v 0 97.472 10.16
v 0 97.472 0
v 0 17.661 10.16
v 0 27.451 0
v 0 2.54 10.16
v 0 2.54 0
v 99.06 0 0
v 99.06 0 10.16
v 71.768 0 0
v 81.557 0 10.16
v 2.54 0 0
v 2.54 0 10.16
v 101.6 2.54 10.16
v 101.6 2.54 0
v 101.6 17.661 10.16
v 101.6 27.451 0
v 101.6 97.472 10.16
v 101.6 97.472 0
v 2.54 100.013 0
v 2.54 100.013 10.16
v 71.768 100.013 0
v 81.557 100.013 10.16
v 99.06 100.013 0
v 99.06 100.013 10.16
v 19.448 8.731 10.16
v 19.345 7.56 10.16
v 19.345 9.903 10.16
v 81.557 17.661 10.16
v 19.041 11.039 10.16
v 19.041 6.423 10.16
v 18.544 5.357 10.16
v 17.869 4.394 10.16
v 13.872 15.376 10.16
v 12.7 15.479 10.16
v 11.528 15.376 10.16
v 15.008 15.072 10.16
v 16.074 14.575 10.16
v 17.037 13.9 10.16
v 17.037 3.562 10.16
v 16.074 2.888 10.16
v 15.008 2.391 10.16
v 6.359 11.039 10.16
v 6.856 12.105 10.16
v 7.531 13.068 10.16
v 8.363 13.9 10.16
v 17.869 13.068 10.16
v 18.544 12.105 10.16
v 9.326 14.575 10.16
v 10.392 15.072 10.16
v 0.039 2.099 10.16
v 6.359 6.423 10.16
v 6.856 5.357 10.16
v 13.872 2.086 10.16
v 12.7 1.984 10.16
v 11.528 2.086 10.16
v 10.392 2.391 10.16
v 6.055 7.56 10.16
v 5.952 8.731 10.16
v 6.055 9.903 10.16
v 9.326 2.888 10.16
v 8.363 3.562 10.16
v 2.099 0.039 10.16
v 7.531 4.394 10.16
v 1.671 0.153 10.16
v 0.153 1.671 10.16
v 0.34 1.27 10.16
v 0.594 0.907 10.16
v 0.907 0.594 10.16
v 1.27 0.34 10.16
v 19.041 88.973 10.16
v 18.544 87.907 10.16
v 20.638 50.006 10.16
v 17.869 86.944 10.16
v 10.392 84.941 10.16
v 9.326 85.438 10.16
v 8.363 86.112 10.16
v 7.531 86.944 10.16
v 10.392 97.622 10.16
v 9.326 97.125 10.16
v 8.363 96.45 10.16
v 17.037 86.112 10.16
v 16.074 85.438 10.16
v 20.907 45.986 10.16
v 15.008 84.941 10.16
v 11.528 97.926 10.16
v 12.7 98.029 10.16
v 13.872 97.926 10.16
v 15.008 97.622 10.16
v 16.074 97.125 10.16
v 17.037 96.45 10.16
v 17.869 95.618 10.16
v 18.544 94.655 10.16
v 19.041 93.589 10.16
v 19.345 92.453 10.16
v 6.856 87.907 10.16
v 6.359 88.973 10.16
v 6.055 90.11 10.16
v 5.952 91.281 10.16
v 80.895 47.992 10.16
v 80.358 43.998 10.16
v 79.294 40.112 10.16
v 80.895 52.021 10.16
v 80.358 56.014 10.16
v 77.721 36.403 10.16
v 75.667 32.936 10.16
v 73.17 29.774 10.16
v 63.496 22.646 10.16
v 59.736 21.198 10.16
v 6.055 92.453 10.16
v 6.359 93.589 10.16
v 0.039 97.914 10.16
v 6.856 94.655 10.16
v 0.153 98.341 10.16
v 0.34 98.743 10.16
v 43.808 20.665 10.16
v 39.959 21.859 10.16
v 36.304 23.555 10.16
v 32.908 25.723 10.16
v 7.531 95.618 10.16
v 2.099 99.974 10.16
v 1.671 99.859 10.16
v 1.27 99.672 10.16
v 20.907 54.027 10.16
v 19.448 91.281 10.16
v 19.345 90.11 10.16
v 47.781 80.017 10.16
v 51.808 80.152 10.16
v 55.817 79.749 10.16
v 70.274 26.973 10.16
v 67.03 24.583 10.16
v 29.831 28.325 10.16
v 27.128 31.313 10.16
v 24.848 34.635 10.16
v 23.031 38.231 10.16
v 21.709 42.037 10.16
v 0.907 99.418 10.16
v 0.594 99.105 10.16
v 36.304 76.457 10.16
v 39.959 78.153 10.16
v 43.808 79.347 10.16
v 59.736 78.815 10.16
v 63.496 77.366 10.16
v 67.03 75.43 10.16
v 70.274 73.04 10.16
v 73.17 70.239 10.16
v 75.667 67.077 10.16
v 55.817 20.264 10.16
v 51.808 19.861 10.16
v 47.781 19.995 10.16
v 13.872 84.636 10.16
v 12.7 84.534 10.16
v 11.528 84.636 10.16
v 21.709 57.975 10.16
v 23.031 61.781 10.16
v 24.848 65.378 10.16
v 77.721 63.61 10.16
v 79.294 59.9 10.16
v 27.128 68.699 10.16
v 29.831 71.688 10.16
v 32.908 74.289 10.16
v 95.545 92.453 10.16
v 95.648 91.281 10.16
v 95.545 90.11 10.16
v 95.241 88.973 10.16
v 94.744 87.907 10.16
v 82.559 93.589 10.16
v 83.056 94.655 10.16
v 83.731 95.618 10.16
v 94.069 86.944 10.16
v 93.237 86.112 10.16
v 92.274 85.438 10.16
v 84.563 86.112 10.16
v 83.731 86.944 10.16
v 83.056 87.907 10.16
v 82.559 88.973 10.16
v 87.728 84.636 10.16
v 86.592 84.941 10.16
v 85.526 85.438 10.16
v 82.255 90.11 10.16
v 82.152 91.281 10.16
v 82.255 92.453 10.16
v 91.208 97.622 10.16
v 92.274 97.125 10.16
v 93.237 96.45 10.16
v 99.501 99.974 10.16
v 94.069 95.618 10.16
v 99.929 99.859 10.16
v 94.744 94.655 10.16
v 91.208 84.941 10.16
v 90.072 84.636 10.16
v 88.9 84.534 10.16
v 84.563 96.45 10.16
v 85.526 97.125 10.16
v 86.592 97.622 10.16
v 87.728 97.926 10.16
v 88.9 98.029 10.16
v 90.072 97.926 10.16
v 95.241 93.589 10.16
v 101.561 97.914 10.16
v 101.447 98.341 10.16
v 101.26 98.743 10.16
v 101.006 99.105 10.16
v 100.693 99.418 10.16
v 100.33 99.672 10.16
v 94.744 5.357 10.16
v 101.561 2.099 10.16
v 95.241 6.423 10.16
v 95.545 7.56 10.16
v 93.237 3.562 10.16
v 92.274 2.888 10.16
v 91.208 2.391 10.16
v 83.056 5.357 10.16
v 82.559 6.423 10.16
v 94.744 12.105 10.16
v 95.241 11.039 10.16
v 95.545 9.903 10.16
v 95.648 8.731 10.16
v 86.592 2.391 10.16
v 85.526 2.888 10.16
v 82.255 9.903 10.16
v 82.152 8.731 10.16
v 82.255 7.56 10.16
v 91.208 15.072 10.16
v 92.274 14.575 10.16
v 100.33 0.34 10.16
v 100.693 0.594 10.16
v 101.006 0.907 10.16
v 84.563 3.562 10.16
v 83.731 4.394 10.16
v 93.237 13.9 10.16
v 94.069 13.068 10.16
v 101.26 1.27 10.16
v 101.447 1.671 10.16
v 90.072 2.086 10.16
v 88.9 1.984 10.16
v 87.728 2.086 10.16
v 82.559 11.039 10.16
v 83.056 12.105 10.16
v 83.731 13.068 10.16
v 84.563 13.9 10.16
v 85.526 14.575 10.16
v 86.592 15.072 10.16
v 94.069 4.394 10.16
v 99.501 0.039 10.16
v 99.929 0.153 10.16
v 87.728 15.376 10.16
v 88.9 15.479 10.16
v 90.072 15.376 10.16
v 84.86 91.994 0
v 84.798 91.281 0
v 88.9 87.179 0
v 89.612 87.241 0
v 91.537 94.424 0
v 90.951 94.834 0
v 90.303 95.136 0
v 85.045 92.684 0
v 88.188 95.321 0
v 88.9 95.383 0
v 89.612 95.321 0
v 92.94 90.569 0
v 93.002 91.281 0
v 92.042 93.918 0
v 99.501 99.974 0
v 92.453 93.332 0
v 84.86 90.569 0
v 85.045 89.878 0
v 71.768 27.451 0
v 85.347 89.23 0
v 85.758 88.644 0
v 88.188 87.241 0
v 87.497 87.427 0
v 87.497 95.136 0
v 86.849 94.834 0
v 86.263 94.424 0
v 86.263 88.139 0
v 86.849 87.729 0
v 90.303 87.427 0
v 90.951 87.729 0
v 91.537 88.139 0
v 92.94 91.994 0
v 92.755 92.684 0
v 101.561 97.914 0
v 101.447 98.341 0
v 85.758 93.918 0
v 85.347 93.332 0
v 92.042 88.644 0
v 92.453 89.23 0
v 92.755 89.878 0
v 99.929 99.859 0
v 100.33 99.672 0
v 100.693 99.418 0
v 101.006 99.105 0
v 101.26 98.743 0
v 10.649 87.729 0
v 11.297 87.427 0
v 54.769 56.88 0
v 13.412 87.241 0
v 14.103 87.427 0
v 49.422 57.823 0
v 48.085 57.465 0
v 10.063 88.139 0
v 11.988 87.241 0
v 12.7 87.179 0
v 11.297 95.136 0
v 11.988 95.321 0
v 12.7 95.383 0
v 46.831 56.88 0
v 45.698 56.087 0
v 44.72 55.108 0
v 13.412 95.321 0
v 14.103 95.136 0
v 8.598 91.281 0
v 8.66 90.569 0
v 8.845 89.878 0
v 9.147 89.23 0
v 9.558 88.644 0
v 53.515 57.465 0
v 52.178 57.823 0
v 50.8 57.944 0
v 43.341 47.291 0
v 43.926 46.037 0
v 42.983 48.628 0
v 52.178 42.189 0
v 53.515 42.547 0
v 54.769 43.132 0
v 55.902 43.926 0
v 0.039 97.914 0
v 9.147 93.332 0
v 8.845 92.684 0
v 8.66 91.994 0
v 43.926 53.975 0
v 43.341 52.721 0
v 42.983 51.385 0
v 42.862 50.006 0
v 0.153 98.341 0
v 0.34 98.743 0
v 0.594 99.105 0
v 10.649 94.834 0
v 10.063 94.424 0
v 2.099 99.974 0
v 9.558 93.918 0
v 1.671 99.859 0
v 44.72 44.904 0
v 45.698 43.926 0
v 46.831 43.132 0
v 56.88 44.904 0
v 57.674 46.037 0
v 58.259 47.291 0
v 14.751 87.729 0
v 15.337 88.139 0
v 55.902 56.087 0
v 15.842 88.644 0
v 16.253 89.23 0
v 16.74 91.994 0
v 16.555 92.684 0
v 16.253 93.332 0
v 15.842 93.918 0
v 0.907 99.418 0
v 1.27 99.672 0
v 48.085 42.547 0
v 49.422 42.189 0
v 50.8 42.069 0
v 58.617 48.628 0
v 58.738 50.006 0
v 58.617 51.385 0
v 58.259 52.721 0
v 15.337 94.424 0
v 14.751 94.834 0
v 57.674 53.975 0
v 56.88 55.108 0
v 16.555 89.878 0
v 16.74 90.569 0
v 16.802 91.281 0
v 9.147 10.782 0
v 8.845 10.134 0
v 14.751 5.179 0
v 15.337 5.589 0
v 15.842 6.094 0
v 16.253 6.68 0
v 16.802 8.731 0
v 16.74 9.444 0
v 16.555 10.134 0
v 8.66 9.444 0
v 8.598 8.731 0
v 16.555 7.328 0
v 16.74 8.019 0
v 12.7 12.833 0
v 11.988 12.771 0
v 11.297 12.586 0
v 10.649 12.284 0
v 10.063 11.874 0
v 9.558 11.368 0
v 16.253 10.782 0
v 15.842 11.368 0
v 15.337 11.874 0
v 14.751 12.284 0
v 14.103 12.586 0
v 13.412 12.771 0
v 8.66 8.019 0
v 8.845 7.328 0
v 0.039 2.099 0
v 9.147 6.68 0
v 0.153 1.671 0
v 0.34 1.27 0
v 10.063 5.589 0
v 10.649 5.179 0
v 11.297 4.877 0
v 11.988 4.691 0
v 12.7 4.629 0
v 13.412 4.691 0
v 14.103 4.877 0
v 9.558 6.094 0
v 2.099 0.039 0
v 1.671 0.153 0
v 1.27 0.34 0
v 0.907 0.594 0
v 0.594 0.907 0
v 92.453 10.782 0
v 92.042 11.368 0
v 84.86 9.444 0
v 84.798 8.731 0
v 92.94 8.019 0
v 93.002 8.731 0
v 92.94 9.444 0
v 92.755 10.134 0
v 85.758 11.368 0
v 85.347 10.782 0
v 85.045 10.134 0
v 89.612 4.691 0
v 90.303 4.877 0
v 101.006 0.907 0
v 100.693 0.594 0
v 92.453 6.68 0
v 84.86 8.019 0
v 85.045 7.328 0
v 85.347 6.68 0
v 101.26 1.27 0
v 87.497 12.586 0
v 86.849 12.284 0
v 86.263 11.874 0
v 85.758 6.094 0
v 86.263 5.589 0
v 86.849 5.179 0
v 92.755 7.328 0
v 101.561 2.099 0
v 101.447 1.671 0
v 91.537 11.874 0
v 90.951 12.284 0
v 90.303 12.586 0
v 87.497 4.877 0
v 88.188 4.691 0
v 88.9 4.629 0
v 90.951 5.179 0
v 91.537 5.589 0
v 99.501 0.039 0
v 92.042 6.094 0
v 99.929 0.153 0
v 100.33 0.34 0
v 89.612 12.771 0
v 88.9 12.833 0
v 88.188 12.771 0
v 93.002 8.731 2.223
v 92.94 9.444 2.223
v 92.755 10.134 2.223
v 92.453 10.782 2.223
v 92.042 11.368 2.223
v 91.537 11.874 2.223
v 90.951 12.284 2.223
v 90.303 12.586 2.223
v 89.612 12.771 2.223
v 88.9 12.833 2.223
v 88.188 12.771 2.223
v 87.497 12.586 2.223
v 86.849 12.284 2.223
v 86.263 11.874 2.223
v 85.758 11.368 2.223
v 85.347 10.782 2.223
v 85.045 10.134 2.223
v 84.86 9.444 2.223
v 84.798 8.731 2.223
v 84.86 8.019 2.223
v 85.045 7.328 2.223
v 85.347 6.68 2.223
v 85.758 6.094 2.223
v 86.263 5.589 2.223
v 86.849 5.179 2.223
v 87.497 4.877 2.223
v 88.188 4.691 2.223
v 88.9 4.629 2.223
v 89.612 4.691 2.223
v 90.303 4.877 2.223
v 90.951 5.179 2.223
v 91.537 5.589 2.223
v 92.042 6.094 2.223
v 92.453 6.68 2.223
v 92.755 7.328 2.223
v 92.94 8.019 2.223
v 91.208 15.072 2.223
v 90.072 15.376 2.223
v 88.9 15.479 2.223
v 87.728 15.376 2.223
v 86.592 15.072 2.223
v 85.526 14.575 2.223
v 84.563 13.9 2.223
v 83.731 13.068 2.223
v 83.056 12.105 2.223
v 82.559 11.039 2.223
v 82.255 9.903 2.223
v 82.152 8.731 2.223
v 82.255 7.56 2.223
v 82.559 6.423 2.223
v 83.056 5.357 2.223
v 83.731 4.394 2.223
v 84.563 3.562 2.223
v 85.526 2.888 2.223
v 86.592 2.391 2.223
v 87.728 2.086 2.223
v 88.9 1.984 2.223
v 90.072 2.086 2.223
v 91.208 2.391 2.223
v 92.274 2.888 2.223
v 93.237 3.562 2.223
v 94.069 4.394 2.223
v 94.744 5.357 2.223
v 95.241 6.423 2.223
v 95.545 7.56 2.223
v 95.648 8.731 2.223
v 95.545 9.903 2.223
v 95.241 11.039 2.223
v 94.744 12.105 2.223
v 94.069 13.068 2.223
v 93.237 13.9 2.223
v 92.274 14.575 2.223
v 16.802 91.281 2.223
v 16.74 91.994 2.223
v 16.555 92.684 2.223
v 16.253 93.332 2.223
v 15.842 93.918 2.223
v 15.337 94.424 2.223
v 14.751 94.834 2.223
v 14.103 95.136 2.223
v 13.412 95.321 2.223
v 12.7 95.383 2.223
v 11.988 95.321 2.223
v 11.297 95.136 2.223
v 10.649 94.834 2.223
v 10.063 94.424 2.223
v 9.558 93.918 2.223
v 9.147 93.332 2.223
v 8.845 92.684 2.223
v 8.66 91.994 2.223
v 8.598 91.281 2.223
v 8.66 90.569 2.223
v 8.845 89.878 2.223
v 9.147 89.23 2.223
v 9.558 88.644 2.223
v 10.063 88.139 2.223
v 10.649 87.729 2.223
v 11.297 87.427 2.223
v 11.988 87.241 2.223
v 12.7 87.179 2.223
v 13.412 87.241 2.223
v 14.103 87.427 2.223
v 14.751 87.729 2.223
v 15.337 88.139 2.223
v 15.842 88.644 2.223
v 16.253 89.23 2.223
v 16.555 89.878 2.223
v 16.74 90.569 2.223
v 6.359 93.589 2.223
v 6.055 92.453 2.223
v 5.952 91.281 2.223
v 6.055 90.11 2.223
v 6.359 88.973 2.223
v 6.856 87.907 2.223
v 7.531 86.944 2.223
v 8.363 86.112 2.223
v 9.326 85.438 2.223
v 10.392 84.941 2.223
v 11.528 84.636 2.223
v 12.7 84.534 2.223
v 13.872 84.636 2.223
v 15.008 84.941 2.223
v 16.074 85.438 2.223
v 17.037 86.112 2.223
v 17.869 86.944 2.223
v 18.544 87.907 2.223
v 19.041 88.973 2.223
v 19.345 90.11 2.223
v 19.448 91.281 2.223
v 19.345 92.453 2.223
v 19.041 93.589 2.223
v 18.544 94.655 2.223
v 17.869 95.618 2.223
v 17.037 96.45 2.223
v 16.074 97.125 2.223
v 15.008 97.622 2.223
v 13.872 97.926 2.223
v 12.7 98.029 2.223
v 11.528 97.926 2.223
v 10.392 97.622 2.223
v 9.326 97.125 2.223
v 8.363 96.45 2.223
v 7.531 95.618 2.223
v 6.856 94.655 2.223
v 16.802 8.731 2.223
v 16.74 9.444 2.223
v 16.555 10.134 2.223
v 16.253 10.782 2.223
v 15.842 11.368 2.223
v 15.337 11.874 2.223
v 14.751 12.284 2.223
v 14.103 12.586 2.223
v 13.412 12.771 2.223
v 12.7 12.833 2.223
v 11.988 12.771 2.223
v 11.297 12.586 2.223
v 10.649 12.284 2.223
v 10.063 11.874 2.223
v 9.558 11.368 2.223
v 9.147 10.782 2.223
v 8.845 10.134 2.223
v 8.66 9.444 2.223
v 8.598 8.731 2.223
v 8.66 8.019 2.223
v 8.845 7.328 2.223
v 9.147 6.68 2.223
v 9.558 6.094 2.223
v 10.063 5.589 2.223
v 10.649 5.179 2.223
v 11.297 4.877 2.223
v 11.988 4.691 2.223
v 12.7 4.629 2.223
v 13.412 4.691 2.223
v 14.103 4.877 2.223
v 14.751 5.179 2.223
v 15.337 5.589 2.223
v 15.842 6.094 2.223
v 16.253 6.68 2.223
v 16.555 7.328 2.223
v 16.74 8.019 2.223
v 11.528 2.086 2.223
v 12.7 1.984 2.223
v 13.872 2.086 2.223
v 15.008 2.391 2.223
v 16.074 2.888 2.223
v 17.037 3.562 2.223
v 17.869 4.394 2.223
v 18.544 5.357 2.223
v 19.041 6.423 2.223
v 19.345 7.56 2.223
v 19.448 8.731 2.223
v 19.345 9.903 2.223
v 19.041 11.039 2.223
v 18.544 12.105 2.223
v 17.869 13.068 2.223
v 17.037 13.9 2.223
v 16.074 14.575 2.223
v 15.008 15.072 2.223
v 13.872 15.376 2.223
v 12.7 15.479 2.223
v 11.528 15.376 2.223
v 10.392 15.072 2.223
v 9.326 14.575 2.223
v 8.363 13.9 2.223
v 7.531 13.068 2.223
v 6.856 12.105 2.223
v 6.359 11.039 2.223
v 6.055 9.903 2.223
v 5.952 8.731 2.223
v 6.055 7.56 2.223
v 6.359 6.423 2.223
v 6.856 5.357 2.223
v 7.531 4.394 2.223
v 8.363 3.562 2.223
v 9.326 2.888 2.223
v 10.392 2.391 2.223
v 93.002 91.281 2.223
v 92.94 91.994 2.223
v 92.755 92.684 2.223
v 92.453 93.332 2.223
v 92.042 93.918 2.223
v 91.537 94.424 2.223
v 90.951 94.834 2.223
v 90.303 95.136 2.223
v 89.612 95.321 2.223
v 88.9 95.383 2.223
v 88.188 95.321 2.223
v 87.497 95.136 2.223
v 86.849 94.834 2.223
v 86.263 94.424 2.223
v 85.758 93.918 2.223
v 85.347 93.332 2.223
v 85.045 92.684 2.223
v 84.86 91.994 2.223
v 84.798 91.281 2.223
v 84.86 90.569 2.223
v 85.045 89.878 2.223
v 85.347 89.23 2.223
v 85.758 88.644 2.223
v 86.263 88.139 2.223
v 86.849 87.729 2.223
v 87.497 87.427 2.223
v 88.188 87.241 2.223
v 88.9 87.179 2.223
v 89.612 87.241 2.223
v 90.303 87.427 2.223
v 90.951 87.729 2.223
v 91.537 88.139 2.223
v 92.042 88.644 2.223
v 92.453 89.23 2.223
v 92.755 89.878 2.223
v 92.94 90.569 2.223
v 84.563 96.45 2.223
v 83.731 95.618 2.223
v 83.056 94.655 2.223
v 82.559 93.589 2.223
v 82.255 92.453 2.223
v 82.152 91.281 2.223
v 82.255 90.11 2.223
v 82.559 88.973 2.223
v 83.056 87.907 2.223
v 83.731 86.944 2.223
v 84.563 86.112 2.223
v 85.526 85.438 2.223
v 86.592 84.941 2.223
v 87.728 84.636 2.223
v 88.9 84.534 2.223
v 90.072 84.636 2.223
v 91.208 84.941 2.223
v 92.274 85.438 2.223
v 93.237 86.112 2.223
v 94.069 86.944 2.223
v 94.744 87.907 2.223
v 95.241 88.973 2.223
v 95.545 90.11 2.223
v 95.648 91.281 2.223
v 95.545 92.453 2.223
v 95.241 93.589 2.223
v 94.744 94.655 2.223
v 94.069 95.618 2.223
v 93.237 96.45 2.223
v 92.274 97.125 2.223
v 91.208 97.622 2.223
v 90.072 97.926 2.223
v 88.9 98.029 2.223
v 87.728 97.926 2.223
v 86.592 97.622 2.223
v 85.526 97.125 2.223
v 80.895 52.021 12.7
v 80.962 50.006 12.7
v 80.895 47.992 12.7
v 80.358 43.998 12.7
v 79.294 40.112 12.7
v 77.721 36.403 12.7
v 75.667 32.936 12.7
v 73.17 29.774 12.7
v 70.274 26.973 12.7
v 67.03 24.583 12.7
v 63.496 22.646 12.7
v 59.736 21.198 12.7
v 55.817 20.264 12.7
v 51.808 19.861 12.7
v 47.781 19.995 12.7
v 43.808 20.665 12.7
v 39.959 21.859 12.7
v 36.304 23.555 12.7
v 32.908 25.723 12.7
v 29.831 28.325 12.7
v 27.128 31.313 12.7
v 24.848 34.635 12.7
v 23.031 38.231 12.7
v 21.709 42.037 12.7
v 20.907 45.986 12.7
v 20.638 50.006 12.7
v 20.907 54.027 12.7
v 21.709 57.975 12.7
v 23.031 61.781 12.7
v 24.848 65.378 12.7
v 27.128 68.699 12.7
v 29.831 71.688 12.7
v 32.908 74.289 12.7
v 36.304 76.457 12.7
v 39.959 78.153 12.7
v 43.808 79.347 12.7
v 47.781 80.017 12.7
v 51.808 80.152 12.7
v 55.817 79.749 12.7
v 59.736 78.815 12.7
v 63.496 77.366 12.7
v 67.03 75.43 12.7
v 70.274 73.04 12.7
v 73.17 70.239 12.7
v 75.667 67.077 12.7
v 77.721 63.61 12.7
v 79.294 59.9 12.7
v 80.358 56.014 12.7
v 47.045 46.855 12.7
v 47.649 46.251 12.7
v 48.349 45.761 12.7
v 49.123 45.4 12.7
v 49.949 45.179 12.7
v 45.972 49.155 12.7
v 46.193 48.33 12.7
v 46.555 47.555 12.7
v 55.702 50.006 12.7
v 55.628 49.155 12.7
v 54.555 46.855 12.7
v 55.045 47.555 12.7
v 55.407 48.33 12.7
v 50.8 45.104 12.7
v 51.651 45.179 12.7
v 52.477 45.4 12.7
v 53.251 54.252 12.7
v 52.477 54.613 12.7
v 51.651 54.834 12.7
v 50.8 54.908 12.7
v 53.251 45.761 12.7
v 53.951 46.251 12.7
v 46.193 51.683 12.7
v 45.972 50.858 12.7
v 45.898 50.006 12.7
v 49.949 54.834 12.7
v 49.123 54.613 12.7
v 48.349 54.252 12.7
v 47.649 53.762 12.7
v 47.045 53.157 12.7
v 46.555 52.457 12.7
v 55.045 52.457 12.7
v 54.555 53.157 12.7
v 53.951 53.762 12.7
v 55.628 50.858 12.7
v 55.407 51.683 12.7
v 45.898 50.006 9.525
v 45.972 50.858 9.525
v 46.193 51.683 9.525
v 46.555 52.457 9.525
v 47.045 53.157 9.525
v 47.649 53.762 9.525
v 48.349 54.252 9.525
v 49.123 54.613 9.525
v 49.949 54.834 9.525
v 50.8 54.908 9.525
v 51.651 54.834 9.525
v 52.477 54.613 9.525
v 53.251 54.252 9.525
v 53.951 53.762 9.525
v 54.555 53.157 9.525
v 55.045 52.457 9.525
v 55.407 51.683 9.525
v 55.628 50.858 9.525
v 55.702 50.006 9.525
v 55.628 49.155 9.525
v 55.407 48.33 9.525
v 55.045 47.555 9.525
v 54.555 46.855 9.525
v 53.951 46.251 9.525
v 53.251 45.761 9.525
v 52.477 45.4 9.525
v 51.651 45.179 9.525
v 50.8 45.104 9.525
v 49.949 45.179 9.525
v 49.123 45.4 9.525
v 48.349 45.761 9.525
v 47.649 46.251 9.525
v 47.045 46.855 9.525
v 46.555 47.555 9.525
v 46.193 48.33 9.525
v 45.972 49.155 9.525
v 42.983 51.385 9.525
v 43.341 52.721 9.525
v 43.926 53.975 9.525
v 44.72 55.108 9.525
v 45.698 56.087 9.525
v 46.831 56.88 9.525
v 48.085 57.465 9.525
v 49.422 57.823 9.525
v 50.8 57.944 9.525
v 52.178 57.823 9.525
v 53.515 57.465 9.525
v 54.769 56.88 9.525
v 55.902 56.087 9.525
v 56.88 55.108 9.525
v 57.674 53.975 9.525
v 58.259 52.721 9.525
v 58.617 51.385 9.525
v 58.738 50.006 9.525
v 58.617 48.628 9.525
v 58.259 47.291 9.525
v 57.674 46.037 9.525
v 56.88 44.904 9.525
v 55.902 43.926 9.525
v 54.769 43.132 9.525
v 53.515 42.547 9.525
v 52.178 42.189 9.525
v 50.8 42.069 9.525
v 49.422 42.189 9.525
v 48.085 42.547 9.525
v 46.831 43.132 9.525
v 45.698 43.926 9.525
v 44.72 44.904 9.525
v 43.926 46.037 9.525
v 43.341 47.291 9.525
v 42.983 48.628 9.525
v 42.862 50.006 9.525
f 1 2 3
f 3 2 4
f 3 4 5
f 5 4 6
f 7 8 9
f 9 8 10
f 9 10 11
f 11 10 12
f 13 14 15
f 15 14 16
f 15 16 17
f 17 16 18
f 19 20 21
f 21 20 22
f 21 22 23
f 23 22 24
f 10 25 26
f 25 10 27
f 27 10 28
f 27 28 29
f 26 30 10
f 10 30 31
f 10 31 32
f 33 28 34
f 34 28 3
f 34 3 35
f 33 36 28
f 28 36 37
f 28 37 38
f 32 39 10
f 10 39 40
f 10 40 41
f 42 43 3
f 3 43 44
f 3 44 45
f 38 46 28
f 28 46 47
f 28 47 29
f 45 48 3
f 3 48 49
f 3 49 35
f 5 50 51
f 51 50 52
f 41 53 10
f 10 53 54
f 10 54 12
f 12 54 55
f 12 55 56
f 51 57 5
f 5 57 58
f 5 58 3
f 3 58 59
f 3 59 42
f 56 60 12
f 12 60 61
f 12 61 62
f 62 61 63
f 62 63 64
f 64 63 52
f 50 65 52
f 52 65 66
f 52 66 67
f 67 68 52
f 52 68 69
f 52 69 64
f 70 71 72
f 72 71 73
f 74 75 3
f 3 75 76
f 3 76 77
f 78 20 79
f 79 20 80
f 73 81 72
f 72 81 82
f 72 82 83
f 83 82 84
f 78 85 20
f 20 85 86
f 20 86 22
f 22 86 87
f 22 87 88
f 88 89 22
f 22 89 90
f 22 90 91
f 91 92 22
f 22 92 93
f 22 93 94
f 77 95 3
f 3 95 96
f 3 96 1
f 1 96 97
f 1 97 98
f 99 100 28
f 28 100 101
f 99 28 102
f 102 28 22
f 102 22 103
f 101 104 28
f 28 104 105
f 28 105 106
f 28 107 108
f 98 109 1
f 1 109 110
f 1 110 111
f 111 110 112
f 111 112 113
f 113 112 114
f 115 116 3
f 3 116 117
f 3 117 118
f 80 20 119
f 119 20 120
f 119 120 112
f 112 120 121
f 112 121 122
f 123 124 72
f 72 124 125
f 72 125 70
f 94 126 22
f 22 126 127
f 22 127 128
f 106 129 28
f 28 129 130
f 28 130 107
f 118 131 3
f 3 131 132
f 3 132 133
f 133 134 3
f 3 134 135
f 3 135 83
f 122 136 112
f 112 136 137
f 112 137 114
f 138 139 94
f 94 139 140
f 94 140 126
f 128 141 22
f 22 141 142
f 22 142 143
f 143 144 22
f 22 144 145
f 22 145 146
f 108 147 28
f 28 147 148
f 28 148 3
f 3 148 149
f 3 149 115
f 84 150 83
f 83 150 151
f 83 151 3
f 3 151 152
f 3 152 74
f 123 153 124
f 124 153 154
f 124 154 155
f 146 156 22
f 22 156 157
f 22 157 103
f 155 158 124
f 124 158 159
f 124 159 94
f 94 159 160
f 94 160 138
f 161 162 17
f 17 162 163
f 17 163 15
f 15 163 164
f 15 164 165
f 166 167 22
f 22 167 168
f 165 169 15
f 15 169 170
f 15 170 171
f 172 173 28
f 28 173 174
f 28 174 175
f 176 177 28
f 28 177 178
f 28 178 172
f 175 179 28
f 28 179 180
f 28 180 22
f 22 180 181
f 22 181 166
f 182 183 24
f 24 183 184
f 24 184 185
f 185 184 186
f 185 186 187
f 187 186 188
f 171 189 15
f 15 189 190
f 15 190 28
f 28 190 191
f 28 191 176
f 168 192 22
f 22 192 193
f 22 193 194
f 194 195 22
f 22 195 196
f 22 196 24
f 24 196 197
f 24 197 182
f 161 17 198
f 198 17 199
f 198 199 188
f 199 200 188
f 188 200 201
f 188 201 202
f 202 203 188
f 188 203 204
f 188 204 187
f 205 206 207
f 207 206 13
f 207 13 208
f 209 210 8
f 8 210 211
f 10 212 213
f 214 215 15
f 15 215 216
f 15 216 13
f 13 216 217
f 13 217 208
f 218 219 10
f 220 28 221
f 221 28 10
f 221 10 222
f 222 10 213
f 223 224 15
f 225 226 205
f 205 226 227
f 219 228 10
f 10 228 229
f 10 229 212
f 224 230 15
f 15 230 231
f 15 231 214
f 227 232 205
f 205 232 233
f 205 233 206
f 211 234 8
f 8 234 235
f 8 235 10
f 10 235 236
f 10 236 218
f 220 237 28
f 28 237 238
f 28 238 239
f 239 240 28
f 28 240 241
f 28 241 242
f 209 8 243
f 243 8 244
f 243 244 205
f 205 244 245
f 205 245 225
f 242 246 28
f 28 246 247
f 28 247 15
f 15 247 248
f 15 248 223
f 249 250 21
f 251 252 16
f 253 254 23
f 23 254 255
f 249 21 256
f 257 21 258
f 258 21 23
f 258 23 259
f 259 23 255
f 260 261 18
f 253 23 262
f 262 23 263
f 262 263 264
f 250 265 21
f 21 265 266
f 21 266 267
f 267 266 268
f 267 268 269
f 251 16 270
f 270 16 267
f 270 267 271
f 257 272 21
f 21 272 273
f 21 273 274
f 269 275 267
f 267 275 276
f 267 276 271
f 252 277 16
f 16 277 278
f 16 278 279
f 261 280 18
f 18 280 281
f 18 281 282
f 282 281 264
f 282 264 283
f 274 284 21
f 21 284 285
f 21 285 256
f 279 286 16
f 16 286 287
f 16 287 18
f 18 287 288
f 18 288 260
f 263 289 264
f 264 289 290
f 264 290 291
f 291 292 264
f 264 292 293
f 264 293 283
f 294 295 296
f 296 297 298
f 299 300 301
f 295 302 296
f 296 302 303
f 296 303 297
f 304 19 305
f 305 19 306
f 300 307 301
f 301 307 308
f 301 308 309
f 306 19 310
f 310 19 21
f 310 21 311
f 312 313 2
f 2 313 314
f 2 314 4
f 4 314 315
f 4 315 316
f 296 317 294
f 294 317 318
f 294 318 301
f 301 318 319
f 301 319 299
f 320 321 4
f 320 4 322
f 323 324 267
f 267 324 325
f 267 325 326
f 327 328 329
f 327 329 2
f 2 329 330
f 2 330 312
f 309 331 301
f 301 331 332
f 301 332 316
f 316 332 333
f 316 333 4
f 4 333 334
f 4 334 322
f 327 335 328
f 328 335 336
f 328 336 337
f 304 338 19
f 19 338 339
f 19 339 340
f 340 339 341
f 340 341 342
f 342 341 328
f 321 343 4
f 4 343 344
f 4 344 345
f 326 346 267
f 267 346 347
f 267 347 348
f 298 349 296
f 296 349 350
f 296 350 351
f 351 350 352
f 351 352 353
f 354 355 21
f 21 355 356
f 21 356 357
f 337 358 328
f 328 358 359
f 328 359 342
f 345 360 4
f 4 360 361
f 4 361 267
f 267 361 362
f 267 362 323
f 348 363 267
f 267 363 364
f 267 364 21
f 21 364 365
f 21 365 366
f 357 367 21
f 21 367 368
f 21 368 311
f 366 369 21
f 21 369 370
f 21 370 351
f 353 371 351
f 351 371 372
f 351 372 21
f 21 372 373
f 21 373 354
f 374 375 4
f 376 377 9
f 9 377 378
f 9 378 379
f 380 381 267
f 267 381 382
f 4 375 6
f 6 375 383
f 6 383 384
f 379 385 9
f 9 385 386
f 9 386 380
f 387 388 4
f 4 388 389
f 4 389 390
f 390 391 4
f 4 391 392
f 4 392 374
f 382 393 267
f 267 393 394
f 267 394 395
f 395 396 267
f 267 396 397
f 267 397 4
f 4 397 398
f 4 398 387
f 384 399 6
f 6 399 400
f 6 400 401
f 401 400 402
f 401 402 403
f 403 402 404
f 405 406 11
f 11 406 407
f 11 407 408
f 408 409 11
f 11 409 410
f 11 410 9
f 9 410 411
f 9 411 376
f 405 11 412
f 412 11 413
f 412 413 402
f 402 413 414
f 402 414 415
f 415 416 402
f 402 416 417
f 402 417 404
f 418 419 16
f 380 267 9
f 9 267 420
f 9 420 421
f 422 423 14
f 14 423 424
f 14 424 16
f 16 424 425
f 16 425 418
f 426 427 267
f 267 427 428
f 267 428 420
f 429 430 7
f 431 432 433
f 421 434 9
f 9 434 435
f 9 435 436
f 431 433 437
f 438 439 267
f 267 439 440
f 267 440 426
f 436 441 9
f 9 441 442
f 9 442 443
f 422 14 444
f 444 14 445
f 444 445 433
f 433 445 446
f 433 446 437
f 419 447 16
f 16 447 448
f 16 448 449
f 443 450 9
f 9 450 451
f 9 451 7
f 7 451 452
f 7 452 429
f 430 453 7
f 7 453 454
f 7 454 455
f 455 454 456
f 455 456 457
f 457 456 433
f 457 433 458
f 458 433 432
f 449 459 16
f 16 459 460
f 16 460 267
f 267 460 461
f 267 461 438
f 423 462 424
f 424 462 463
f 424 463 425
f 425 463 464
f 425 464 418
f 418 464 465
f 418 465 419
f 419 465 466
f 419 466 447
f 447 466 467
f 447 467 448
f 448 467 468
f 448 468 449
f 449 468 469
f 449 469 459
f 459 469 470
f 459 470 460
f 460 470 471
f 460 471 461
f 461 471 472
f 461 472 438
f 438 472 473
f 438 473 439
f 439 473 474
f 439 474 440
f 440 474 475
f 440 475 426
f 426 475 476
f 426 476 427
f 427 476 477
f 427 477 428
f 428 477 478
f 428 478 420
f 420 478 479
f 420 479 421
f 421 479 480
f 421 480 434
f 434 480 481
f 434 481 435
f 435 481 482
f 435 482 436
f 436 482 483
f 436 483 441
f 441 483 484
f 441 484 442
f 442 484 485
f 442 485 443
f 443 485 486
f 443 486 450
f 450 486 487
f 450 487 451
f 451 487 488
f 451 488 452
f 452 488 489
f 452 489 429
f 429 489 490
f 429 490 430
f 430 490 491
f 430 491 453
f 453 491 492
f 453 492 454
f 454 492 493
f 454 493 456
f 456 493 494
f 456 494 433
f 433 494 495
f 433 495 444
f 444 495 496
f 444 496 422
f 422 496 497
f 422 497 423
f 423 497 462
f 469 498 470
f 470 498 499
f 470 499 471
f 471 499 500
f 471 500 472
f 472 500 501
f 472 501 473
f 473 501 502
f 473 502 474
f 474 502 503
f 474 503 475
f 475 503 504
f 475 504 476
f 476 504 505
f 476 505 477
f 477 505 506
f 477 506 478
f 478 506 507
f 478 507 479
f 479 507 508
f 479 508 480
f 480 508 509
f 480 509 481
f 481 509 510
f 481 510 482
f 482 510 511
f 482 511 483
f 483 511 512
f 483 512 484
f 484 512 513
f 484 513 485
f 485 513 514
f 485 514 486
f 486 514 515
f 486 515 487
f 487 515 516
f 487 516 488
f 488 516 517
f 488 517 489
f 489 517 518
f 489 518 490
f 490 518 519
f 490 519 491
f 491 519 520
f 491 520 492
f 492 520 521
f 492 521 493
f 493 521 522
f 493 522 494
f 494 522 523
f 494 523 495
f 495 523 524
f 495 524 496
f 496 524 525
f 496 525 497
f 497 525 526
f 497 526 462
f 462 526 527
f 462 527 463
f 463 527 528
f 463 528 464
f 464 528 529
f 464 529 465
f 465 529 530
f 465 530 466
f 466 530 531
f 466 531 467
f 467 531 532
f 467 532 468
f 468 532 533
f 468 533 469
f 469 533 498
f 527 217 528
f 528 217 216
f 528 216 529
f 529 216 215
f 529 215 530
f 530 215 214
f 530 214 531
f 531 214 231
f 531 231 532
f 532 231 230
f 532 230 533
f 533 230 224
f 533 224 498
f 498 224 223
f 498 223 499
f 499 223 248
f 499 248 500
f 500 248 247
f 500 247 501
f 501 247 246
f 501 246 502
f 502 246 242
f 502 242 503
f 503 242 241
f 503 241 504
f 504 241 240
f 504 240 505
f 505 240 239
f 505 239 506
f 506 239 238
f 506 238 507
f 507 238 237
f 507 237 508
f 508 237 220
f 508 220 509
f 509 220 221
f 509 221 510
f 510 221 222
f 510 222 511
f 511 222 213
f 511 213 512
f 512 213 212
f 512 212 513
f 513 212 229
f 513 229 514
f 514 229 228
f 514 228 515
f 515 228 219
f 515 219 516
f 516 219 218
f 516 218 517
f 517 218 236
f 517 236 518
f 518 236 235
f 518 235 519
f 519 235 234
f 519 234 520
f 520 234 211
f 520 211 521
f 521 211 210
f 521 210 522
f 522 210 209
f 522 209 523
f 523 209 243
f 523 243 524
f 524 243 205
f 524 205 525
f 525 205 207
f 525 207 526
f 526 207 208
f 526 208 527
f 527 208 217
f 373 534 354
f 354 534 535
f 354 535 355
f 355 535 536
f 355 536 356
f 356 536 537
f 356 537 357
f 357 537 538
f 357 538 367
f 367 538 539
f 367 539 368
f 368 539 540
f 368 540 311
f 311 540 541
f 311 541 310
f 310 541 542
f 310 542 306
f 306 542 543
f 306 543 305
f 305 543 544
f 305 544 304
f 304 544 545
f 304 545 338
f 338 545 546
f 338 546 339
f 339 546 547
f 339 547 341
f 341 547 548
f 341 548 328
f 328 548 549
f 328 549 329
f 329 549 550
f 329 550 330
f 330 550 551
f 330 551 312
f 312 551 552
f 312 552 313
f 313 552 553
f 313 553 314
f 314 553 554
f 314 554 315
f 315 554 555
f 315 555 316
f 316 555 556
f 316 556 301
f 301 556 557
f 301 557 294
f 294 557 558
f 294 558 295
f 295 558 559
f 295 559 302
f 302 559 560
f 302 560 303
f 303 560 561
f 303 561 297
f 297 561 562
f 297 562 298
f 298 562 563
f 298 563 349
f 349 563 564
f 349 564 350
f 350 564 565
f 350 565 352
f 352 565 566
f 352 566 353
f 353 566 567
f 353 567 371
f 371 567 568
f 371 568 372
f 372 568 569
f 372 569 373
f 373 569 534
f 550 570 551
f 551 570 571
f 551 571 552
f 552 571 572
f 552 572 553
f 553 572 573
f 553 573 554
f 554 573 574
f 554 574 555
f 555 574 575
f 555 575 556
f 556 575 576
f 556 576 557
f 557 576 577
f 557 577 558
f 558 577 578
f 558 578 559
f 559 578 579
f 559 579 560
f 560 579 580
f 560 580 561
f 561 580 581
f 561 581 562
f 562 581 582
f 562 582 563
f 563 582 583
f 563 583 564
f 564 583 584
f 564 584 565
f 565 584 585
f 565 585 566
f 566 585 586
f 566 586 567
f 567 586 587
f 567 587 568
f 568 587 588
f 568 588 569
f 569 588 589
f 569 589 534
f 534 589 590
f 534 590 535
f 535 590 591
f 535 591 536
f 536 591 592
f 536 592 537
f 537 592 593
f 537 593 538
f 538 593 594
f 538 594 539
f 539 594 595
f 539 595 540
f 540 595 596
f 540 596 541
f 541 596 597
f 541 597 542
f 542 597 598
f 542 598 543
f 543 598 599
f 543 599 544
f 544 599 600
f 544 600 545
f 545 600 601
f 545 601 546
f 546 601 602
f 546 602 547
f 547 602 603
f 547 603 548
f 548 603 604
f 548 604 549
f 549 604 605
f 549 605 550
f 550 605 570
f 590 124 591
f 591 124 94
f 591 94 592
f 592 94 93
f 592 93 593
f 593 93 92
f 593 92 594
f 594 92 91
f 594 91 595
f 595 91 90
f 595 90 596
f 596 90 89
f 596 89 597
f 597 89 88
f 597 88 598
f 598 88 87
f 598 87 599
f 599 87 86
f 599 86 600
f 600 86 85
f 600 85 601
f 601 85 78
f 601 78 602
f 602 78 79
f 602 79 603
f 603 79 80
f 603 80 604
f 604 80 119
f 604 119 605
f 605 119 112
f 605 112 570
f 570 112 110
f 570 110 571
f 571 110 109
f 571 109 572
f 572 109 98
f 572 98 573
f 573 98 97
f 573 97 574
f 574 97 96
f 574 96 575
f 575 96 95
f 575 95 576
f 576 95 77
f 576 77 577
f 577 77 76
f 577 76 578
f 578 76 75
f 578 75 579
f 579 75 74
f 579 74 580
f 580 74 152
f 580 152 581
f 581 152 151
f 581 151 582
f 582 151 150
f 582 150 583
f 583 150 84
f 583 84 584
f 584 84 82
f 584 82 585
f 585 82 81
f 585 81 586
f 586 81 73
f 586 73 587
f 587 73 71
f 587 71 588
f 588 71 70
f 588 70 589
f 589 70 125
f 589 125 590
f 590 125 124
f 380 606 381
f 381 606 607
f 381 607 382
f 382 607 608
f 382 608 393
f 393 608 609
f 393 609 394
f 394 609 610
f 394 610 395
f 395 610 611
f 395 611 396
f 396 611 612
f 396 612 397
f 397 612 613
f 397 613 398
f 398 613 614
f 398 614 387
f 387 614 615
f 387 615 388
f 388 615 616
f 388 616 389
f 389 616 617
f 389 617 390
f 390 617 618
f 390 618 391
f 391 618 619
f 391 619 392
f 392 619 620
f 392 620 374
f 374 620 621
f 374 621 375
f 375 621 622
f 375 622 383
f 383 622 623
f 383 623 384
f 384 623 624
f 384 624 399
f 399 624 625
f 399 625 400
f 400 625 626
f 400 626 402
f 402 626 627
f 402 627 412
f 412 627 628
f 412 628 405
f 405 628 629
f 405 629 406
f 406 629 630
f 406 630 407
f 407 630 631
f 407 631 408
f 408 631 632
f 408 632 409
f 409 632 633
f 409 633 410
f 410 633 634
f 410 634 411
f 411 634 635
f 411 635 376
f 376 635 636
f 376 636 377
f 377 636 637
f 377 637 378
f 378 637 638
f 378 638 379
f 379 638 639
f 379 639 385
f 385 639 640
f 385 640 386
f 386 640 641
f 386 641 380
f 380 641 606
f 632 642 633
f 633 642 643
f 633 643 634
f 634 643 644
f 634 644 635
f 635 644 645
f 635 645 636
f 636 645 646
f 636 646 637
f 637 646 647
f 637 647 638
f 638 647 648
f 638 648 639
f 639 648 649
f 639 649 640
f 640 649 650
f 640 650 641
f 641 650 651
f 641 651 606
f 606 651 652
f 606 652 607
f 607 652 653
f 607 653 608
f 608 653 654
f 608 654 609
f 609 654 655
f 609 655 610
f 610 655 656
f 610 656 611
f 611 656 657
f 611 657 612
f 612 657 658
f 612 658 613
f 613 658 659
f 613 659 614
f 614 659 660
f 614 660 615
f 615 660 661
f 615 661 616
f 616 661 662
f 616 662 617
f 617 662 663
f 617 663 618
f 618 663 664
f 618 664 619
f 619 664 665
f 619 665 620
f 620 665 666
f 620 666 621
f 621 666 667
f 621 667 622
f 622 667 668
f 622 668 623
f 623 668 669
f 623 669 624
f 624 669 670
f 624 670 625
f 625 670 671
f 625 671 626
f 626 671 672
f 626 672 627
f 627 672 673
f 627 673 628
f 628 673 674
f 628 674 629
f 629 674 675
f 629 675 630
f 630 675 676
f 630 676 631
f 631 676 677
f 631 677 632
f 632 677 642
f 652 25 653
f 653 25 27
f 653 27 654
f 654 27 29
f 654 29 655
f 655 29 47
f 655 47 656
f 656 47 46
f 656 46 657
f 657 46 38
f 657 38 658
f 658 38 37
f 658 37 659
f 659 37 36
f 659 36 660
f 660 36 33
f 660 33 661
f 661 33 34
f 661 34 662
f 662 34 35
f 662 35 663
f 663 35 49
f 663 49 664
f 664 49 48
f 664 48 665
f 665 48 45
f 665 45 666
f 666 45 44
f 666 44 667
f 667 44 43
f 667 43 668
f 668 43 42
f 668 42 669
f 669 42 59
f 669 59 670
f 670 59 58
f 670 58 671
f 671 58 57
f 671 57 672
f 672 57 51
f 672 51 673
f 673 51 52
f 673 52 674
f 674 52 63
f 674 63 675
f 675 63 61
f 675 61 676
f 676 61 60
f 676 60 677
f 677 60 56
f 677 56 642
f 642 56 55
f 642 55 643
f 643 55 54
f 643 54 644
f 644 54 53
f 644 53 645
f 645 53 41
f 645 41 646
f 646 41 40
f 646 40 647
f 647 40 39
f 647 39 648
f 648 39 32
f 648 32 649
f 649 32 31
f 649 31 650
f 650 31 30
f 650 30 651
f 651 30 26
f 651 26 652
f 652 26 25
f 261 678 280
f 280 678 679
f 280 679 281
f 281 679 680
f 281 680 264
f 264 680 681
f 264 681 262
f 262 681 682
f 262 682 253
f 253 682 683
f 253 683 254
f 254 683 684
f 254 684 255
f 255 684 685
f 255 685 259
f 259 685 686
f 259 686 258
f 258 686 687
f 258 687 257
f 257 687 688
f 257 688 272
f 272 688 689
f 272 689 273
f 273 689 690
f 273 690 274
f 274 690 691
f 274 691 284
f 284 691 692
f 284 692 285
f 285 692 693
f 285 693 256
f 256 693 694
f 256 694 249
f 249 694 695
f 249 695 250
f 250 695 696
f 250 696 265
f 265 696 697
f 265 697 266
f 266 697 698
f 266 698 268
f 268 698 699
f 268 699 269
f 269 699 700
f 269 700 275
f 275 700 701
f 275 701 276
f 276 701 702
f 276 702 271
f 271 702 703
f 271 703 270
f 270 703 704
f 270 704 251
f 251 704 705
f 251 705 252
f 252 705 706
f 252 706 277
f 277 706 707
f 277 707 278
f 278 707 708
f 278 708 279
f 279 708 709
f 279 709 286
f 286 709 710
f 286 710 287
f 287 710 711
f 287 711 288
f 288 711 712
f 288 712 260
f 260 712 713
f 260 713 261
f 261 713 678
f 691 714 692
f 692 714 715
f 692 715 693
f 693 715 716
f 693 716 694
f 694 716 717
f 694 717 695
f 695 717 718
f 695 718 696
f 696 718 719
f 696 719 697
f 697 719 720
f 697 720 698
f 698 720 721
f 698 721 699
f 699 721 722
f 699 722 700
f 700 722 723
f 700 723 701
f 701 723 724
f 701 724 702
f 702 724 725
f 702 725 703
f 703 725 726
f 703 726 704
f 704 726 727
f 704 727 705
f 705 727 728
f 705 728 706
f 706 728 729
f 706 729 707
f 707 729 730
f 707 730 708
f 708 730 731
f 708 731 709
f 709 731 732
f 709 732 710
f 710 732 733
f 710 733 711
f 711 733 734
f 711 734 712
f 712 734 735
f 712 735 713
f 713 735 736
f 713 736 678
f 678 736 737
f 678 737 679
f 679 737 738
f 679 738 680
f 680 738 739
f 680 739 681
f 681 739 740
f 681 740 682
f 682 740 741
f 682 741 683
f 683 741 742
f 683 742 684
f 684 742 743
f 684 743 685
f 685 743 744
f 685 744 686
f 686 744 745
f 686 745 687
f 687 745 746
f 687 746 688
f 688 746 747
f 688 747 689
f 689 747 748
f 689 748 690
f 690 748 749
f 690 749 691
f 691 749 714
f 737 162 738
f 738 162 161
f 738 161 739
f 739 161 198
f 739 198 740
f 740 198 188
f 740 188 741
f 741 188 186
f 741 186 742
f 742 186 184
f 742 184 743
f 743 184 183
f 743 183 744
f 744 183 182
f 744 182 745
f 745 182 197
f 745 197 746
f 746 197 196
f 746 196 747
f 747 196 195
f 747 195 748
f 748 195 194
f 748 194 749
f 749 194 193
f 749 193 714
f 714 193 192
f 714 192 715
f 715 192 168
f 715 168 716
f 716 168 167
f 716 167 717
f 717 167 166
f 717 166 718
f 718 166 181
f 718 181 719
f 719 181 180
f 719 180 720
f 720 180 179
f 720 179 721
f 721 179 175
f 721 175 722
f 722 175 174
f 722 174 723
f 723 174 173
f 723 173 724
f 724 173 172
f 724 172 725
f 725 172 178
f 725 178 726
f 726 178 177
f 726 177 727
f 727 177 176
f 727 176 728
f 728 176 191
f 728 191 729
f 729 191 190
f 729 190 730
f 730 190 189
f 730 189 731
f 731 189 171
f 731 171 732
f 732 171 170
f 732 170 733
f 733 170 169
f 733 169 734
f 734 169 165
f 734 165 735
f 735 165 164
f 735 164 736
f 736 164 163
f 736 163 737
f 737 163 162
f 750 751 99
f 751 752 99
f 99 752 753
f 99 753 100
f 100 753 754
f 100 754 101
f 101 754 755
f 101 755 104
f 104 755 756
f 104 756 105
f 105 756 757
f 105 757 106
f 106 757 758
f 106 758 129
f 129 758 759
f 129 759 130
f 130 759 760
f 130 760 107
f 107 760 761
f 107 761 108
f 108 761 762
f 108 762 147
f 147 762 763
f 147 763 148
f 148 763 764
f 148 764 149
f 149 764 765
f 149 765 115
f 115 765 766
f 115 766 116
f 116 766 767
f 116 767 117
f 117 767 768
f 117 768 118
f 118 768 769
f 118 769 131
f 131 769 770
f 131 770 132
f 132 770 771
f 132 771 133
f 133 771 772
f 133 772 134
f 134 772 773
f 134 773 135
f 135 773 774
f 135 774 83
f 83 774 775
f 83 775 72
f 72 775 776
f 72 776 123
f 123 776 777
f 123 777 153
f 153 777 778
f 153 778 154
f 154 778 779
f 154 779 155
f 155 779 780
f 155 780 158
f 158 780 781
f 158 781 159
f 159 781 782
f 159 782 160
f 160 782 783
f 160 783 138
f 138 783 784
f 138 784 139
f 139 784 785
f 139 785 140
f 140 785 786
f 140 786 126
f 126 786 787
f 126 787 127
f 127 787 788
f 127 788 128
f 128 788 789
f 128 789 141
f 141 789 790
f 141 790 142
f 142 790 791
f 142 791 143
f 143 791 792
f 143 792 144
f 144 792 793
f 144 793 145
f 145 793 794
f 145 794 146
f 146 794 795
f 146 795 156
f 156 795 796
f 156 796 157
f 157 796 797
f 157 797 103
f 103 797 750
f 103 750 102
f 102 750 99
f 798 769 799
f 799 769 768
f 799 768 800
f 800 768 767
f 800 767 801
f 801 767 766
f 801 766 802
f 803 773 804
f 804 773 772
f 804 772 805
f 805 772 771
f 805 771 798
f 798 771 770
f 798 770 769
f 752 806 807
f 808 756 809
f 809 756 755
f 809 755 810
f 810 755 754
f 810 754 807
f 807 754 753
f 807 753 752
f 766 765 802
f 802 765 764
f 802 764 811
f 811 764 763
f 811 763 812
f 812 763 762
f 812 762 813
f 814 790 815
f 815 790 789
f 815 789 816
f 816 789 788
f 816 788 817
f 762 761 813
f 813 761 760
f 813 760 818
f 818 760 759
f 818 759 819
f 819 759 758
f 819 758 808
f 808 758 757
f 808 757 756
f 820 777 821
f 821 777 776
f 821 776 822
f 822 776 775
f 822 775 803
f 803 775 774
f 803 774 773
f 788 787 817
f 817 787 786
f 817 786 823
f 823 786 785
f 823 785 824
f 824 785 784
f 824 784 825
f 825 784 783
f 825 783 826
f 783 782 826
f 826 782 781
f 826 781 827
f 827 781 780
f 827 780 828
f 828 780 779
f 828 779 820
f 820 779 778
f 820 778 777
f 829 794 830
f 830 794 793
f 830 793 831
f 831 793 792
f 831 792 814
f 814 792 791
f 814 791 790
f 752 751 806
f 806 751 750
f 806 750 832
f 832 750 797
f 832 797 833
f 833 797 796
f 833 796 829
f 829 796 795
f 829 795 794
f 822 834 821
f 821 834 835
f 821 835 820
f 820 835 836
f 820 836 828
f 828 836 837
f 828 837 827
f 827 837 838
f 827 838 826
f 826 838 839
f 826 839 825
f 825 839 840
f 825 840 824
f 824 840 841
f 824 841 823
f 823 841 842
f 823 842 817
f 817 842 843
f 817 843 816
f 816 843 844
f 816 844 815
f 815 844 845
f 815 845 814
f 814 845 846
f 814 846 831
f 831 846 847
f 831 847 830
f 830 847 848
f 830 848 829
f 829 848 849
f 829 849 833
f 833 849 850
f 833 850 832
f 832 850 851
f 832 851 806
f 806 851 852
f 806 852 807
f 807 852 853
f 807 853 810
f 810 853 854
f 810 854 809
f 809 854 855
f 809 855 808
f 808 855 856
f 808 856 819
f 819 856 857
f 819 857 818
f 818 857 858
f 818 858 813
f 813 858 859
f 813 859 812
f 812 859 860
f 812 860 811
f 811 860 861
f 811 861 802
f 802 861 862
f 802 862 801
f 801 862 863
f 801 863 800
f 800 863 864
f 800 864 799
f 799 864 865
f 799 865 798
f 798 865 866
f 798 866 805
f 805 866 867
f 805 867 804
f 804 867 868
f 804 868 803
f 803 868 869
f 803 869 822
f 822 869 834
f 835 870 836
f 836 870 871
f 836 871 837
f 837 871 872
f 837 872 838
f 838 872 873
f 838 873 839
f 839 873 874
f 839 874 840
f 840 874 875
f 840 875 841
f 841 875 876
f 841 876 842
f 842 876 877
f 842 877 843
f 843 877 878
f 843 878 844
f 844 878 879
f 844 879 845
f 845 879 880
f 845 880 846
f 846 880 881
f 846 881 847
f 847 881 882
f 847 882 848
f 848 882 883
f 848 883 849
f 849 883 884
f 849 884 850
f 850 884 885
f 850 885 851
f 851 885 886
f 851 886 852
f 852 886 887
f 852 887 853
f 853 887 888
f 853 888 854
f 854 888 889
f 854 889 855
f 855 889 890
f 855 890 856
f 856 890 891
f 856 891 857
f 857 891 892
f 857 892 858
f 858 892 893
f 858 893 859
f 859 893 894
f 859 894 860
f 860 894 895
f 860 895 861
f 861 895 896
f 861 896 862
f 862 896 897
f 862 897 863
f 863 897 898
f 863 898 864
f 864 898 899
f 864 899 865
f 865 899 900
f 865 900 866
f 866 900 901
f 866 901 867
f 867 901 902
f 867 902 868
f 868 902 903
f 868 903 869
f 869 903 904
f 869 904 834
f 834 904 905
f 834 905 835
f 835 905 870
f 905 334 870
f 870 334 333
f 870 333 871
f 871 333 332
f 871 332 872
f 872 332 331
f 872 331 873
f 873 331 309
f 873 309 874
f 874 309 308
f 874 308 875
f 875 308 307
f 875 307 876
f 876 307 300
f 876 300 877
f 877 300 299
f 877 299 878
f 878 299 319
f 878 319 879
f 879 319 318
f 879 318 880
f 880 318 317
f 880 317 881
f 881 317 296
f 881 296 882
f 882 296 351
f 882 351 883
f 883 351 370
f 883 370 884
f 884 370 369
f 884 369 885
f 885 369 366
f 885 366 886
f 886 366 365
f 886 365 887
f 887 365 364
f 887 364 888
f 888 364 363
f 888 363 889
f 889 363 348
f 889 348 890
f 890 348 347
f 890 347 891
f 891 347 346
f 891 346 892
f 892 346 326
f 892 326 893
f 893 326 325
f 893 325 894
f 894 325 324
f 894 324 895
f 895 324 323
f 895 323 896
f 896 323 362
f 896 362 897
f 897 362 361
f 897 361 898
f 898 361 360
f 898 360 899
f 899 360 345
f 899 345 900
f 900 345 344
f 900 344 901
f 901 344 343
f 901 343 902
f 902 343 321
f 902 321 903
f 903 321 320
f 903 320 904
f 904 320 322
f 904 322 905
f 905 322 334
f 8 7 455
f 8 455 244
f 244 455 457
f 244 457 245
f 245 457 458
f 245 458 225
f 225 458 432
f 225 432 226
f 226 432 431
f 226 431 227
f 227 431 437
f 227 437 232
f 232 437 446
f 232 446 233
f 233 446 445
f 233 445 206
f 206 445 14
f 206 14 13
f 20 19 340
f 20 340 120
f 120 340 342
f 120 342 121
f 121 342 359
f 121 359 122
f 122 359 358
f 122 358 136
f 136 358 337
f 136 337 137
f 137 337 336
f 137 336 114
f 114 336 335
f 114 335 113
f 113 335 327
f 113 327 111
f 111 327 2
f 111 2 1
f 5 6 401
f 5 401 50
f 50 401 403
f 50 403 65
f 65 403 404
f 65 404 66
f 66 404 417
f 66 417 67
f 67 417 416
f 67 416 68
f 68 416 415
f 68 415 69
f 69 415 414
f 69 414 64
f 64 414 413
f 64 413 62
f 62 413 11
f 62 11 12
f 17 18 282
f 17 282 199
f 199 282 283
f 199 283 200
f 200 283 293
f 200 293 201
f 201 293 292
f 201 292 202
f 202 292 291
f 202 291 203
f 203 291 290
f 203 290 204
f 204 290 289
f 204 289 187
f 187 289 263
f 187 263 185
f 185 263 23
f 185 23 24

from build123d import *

# Parameters (mm, degrees)
SKETCH1_W                                         = 101.6
SKETCH1_H                                         = 100.0125
BOSS_EXTRUDE1_DEPTH                               = 10.16
CBORE_FOR_5_16_SOCKET_HEAD_CAP_SCREW1_D           = 8.2042
CBORE_FOR_5_16_SOCKET_HEAD_CAP_SCREW1_CBORE_D     = 13.49502
CBORE_FOR_5_16_SOCKET_HEAD_CAP_SCREW1_CBORE_DEPTH = 7.9375
SKETCH4_R                                         = 30.1625
BOSS_EXTRUDE2_DEPTH                               = 2.54
CBORE_FOR_3_8_SOCKET_HEAD_CAP_SCREW1_D            = 9.8044
CBORE_FOR_3_8_SOCKET_HEAD_CAP_SCREW1_CBORE_D      = 15.875
CBORE_FOR_3_8_SOCKET_HEAD_CAP_SCREW1_CBORE_DEPTH  = 9.525
FILLET1_R                                         = 2.54


with BuildPart() as part:
    # Sketch1 → Boss-Extrude1 (new body)
    with BuildSketch(Plane.XY):
        with Locations((50.8, 50.00625)):
            Rectangle(SKETCH1_W, SKETCH1_H)
    extrude(amount=BOSS_EXTRUDE1_DEPTH)

    # CBORE for 5/16 Socket Head Cap Screw1 (through all)
    with Locations(Plane.XY.offset(10.16)):
        with Locations((88.9, 8.73125), (88.9, 91.28125), (12.7, 8.73125), (12.7, 91.28125)):
            CounterBoreHole(CBORE_FOR_5_16_SOCKET_HEAD_CAP_SCREW1_D / 2, CBORE_FOR_5_16_SOCKET_HEAD_CAP_SCREW1_CBORE_D / 2, CBORE_FOR_5_16_SOCKET_HEAD_CAP_SCREW1_CBORE_DEPTH)

    # Sketch4 → Boss-Extrude2 (add)
    with BuildSketch(Plane.XY.offset(10.16)):
        with Locations(Location((50.8, 50.00625, 0), (0, 0, 180))):
            Circle(SKETCH4_R)
    extrude(amount=BOSS_EXTRUDE2_DEPTH)

    # CBORE for 3/8 Socket Head Cap Screw1 (through all)
    with Locations(Plane(origin=(0, 0, 0), x_dir=(-1, 0, 0), z_dir=(0, 0, -1))):
        with Locations((-50.8, 50.00625)):
            CounterBoreHole(CBORE_FOR_3_8_SOCKET_HEAD_CAP_SCREW1_D / 2, CBORE_FOR_3_8_SOCKET_HEAD_CAP_SCREW1_CBORE_D / 2, CBORE_FOR_3_8_SOCKET_HEAD_CAP_SCREW1_CBORE_DEPTH)

    # Fillet1
    fillet1_edges = [part.edges().sort_by_distance(p)[0] for p in [
        (0, 100.0125, 5.08),
        (101.6, 100.0125, 5.08),
        (101.6, 0, 5.08),
        (0, 0, 5.08),
    ]]
    fillet(fillet1_edges, radius=FILLET1_R)


solid = part.part
